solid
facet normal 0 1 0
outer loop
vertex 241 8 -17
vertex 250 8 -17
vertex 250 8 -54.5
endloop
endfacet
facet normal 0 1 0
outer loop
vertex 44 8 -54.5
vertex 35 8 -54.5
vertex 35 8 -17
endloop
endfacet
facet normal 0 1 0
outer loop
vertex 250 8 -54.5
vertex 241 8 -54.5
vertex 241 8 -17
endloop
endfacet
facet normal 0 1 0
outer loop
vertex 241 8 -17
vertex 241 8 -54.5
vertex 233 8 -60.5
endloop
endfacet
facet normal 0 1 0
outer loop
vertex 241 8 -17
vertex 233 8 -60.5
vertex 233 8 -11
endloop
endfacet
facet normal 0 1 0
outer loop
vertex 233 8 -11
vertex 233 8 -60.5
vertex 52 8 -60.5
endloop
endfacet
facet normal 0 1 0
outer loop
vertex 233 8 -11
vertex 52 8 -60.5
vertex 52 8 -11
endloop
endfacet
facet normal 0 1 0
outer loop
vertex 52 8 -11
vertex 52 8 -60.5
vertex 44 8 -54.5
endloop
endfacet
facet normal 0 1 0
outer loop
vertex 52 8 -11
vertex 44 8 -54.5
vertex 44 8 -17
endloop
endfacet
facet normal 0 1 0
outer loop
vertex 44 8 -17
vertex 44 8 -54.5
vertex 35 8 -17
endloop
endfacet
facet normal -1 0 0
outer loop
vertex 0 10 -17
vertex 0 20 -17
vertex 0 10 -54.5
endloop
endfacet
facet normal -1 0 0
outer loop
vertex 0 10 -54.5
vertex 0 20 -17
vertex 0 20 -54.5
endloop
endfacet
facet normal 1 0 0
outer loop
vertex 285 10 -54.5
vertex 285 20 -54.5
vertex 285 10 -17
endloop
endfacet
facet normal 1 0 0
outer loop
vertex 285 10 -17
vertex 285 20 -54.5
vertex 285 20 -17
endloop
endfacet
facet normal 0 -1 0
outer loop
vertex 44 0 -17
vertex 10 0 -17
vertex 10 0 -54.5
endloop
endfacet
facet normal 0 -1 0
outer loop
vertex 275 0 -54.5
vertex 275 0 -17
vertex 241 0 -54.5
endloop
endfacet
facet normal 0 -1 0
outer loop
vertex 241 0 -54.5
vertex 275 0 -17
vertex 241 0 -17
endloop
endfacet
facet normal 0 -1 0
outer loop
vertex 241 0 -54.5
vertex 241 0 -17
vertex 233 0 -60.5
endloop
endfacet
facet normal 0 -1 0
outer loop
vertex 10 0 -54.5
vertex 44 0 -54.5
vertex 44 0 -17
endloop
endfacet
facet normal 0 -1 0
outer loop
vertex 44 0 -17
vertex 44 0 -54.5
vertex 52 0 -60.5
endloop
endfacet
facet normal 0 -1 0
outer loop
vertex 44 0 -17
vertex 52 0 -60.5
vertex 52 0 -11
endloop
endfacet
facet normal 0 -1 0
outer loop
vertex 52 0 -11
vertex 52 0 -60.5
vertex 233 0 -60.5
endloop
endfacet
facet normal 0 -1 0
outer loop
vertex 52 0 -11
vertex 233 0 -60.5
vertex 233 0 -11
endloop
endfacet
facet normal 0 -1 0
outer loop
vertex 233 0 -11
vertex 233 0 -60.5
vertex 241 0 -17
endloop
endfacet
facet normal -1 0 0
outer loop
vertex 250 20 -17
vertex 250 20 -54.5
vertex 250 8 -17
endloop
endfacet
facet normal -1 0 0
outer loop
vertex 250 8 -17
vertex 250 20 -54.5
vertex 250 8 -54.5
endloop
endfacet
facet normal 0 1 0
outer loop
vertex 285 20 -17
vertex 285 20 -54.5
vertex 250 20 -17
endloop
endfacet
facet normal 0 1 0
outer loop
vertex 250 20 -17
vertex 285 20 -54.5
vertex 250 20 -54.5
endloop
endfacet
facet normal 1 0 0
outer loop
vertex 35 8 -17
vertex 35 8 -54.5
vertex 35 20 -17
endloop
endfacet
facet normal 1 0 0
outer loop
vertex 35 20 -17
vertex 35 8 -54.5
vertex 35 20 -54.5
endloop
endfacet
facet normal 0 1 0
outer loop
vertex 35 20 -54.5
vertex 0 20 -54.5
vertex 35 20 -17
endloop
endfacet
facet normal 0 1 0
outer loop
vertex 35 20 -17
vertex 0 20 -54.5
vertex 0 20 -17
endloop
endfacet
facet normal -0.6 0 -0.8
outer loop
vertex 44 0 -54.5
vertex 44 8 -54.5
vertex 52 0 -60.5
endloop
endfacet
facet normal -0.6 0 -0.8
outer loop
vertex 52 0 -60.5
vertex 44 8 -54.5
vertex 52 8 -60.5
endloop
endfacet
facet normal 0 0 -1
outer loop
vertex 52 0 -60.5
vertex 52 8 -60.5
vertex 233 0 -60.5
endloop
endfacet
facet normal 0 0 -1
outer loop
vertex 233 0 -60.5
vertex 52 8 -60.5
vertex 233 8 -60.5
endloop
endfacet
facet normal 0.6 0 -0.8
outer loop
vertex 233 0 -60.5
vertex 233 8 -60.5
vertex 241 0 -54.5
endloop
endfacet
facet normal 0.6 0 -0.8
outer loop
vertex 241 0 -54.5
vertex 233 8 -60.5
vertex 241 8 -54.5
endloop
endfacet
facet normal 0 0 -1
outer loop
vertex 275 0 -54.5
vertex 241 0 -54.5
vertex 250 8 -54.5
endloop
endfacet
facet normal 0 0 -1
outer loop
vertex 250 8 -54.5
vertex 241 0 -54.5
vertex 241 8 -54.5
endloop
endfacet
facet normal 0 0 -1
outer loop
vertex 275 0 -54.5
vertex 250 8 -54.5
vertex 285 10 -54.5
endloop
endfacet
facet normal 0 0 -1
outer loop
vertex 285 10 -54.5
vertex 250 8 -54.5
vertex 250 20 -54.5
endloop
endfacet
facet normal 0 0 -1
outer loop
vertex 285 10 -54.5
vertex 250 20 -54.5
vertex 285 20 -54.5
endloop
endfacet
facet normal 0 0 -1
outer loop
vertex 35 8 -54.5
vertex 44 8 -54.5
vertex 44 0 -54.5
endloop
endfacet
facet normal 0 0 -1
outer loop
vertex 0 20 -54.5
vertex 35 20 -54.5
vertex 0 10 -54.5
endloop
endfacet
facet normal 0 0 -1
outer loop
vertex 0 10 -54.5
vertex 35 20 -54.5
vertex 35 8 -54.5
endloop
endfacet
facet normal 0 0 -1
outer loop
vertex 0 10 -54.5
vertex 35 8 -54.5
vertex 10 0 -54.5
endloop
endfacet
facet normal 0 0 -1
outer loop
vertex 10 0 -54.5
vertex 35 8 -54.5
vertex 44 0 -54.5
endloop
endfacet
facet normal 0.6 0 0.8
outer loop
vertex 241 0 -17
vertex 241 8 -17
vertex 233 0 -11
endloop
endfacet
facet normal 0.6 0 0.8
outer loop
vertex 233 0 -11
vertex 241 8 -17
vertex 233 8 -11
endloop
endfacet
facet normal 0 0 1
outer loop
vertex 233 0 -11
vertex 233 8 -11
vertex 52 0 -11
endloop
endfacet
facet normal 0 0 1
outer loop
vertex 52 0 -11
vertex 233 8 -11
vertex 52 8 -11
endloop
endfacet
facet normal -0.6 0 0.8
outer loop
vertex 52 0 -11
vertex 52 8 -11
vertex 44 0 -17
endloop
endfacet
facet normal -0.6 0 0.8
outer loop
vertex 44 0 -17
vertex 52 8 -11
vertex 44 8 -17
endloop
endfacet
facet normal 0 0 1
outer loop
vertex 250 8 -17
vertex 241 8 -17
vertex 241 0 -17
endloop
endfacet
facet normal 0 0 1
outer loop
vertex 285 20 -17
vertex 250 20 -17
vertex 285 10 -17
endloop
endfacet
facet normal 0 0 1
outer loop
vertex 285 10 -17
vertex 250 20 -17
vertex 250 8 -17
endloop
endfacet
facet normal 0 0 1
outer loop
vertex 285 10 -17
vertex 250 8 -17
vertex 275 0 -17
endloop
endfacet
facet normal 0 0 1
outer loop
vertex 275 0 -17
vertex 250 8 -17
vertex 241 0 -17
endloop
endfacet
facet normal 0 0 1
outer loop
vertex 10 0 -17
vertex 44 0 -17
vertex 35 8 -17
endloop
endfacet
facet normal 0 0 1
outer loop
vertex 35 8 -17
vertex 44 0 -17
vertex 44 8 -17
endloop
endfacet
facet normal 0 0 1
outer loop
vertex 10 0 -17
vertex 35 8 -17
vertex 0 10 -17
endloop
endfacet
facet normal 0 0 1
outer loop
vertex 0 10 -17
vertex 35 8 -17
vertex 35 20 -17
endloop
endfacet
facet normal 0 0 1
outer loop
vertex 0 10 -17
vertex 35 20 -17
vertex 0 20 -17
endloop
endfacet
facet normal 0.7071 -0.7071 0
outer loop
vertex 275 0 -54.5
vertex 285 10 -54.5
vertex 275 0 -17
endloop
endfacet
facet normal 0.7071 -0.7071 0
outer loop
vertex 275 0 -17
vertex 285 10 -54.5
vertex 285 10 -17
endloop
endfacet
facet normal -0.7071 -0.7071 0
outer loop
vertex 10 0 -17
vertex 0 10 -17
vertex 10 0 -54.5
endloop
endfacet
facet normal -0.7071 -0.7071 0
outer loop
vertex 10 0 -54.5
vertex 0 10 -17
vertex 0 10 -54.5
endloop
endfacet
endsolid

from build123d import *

# Parameters (mm, degrees)
SKETCH1_W           = 285
SKETCH1_H           = 71.5
BOSS_EXTRUDE1_DEPTH = 8
SKETCH2_W           = 35
SKETCH2_H           = 71.5
BOSS_EXTRUDE2_DEPTH = 12
CUT_EXTRUDE2_DEPTH  = 295.51188431
CHAMFER1_SIZE       = 10


with BuildPart() as part:
    # Sketch1 → Boss-Extrude1 (new body)
    with BuildSketch(Plane(origin=(0, 0, 0), x_dir=(1, 0, 0), z_dir=(0, 1, 0))):
        with Locations((142.5, 35.75)):
            Rectangle(SKETCH1_W, SKETCH1_H)
    extrude(amount=BOSS_EXTRUDE1_DEPTH)

    # Sketch2 → Boss-Extrude2 (add)
    with BuildSketch(Plane(origin=(0, 8, 0), x_dir=(1, 0, 0), z_dir=(0, 1, 0))):
        with Locations((17.5, 35.75)):
            Rectangle(SKETCH2_W, SKETCH2_H)
        with Locations((267.5, 35.75)):
            Rectangle(SKETCH2_W, SKETCH2_H)
    extrude(amount=BOSS_EXTRUDE2_DEPTH)

    # Sketch4 → Cut-Extrude2 (cut, through all)
    with BuildSketch(Plane.XZ):
        Polygon((0, -17), (44, -17), (52, -11), (233, -11), (241, -17), (285, -17), (285, 0), (0, 0), align=None)
        Polygon((44, -54.5), (52, -60.5), (233, -60.5), (241, -54.5), (285, -54.5), (285, -71.5), (0, -71.5), (0, -54.5), align=None)
    extrude(amount=-CUT_EXTRUDE2_DEPTH, mode=Mode.SUBTRACT)

    # Chamfer1
    chamfer1_edges = [part.edges().sort_by_distance(p)[0] for p in [
        (0, 0, -35.75),
        (285, 0, -35.75),
    ]]
    chamfer(chamfer1_edges, length=CHAMFER1_SIZE)


solid = part.part
